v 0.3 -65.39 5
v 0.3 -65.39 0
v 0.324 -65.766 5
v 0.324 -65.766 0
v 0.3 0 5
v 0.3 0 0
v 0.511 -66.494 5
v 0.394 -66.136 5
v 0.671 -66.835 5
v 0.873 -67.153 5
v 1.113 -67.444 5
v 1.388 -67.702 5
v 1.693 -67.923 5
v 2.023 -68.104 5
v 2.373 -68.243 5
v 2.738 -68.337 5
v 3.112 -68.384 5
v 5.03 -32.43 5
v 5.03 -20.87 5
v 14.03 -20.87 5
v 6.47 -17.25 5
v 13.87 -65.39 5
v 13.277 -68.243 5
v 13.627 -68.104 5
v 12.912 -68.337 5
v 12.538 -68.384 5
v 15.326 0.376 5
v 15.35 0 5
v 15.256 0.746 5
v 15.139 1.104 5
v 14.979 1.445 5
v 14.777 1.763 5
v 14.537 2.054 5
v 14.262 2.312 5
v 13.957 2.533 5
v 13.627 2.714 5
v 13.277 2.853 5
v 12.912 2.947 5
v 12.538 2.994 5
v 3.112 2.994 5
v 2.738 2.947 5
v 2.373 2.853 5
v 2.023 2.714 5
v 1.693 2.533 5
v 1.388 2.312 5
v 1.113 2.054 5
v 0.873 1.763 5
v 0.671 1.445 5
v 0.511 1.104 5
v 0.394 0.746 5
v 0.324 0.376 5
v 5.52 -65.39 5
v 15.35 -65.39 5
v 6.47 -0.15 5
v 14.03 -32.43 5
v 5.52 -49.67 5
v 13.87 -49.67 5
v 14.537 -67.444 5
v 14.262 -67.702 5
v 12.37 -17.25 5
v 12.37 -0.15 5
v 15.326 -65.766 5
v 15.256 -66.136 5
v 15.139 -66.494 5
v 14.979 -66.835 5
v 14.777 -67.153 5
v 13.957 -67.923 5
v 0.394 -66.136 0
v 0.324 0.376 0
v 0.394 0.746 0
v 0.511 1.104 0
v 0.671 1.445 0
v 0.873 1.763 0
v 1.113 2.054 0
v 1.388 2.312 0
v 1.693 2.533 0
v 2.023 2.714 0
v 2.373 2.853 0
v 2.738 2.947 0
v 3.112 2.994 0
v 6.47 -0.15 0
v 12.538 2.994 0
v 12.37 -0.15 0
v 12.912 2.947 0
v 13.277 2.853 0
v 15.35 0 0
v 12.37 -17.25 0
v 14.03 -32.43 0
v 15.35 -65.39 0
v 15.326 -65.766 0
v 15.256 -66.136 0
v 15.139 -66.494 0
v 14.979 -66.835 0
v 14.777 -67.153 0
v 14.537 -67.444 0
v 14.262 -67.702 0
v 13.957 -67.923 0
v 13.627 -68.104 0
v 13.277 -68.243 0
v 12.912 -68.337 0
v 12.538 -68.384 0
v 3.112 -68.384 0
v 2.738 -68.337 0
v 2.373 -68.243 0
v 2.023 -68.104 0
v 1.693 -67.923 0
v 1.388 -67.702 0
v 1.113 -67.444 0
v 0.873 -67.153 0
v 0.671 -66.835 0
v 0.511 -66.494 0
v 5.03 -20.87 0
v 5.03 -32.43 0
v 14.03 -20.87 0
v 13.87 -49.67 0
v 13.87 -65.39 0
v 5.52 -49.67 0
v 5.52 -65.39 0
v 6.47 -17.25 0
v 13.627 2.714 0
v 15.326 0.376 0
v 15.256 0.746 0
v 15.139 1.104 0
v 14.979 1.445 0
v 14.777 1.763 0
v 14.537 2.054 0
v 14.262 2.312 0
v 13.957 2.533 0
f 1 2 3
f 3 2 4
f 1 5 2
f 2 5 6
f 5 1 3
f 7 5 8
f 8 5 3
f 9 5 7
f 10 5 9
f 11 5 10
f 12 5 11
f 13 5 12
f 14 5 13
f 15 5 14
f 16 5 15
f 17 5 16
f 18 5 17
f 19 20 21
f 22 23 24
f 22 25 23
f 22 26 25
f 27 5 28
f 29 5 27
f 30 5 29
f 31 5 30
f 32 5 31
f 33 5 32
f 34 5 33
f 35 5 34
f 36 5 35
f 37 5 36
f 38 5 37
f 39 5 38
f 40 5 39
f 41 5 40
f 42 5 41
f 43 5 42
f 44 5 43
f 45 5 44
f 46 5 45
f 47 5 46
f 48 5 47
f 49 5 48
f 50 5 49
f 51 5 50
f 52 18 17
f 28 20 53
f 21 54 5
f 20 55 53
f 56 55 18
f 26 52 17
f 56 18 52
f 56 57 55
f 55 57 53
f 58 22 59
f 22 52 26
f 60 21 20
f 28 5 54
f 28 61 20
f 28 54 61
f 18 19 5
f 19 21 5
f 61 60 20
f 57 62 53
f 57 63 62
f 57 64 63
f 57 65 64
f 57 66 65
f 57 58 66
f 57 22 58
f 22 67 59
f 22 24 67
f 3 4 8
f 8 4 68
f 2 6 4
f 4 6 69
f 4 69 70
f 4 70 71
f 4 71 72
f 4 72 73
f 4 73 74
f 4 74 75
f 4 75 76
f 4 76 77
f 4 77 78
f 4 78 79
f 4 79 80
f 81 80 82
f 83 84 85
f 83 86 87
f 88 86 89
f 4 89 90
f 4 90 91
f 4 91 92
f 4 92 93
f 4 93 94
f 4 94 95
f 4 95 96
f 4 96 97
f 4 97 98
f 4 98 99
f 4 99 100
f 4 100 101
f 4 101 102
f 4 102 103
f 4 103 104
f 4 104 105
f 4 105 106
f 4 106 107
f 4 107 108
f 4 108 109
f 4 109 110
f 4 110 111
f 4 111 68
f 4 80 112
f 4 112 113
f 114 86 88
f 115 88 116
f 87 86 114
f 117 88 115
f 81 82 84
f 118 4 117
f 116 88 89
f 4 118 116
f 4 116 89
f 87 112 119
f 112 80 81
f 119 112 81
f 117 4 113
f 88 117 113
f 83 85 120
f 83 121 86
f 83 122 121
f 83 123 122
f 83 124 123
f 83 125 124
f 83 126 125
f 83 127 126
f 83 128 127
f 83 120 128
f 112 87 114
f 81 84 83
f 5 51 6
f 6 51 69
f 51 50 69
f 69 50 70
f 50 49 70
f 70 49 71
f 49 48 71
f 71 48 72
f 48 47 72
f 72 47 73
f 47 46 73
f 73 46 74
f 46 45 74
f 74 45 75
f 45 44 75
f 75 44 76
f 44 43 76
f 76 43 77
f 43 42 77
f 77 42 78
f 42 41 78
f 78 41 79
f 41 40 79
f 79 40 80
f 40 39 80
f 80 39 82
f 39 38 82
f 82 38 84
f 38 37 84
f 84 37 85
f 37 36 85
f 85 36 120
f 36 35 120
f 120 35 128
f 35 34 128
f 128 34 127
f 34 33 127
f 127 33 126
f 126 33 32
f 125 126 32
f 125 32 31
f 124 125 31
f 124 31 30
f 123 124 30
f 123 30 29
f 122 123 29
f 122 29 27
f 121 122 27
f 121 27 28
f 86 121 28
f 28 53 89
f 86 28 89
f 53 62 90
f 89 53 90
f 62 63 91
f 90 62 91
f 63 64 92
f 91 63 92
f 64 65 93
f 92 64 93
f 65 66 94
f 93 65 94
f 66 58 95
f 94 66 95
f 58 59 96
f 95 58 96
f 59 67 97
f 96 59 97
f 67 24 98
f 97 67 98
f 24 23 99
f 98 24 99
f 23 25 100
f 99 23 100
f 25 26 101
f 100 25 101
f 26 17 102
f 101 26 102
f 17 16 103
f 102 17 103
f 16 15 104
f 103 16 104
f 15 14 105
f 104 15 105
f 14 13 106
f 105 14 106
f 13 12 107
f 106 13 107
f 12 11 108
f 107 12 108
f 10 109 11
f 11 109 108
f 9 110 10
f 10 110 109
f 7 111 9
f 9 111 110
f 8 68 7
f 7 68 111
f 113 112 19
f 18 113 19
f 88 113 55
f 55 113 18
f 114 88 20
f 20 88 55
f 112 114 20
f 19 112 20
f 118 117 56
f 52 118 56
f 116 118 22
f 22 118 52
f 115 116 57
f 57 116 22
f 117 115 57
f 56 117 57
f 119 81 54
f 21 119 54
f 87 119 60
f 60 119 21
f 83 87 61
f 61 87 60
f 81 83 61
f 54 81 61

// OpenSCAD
macbook_height = 12.35;

magsafe_right_edge_from_end = 17.25;
magsafe_width = 17.1; // 16.09
magsafe_height = 5.30; // 4.6
magsafe_top_height = 11.47;

displayport_right_edge_from_end = 32.43;
displayport_width = 11.56; // 11.62
displayport_height = 8.40; // 7.82
displayport_top_height = 13.13;

usb_right_edge_from_end = 65.39;
usb_width = 15.72; // 15.27
usb_height = 7.75; // 7.17
usb_top_height = 12.97;

depth = 10;
extra_width = 3;
extra_height = 3;
height_offset = 0.3;
corner_radius = 3;
extra_cutout_height = 0.6;
module connector(width, height, top_height, right_edge_offset, depth) {
  translate([-depth, -right_edge_offset-width + width, top_height-height+extra_cutout_height/2]) 
    cube([depth, width, height+extra_cutout_height]);
}

container = [
  depth/2,
  extra_width+usb_right_edge_from_end+extra_width,
  macbook_height-height_offset+extra_height
];

//%translate([-container[0]-1,-(extra_width+usb_right_edge_from_end),height_offset]) cube(container);

module bracket() {
  translate([-container[0]-1+container[0],-(extra_width+usb_right_edge_from_end),height_offset]) 
    rotate([0,-90,0])
      rectangle_with_corners(container,corner_radius);
}
module doit() {
  difference() {
    bracket();
    connector(magsafe_width, magsafe_height, magsafe_top_height, magsafe_right_edge_from_end, depth);
    connector(displayport_width, displayport_height, displayport_top_height, displayport_right_edge_from_end, depth);
    connector(usb_width, usb_height, usb_top_height, usb_right_edge_from_end, depth);
  }
}
translate([0,0,-1]) rotate([0,90,0]) doit();

module rectangle_with_corners(size, corner_radius) {
  $fn=50;
  x = size[2];
  y = size[1];
  z = size[0];
  r = corner_radius;
  linear_extrude(height=z) hull() {
    translate([r,r,0]) circle(r=r);
    translate([x-r,r,0]) circle(r=r);
    translate([x-r,y-r,0]) circle(r=r);
    translate([r,y-r,0]) circle(r=r);
  }
}
